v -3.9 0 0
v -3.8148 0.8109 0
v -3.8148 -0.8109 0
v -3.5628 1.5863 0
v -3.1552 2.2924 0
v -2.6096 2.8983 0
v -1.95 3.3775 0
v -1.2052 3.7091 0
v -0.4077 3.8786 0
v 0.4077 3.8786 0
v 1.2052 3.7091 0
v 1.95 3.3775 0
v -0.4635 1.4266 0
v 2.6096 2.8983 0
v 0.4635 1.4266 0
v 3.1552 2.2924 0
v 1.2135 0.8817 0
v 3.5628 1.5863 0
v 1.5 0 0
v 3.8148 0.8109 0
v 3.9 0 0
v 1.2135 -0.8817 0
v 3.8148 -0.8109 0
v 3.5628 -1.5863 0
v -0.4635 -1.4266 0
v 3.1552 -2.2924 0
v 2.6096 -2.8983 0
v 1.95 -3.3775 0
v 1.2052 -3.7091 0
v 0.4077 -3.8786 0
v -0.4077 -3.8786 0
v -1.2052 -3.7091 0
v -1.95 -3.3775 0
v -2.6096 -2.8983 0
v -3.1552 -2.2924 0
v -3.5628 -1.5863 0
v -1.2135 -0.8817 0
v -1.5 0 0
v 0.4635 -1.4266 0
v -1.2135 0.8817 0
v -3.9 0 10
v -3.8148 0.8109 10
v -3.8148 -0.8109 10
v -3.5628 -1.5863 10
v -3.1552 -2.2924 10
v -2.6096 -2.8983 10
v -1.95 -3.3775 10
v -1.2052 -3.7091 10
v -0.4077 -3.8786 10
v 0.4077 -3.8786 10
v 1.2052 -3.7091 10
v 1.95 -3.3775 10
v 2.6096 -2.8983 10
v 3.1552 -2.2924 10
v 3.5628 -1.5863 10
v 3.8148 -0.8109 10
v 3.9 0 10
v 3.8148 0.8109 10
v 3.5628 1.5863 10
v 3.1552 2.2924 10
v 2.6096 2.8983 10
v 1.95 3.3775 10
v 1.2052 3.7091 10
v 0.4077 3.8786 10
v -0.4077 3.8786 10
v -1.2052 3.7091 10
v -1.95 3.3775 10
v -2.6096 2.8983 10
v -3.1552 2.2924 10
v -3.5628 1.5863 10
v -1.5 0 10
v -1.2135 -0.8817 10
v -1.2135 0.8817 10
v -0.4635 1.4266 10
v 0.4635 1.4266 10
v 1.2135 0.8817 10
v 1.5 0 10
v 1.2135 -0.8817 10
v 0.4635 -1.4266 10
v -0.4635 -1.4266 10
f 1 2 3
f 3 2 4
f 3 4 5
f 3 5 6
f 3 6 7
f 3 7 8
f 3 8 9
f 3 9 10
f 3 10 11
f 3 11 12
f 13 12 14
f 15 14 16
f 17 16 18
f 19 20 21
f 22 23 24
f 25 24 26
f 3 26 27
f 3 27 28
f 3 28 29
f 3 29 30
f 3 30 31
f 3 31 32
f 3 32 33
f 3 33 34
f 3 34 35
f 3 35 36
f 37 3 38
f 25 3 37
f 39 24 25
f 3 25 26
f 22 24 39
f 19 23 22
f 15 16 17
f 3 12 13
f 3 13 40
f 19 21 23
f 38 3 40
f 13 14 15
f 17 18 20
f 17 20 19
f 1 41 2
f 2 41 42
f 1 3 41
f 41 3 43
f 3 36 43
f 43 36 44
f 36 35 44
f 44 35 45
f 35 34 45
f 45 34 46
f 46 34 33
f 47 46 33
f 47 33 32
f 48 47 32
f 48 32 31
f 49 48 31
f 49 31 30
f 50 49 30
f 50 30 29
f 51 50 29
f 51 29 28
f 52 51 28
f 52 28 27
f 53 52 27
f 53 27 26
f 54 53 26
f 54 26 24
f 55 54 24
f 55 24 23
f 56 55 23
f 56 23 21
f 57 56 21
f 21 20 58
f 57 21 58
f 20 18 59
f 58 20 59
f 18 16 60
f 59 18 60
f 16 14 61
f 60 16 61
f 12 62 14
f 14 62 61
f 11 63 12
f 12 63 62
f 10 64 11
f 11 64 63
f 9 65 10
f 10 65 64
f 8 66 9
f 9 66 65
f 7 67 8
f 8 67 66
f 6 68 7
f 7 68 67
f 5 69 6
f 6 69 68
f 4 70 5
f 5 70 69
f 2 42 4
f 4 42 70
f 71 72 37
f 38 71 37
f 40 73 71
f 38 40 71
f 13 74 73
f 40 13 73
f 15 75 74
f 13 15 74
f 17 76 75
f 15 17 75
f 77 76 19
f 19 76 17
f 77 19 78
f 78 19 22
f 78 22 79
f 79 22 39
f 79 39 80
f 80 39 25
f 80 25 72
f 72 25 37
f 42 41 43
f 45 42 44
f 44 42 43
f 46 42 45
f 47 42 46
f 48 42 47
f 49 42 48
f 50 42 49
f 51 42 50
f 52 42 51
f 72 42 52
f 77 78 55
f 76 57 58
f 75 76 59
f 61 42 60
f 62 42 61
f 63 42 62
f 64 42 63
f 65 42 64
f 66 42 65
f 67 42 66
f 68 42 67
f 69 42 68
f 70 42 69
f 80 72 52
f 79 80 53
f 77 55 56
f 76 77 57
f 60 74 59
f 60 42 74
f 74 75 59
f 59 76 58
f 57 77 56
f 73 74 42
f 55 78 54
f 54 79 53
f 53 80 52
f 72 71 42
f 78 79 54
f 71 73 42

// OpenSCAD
difference(){
cylinder(h=10, r=3.9, $fn=30);
cylinder(h=12,r=1.5, $fn=10);
}
